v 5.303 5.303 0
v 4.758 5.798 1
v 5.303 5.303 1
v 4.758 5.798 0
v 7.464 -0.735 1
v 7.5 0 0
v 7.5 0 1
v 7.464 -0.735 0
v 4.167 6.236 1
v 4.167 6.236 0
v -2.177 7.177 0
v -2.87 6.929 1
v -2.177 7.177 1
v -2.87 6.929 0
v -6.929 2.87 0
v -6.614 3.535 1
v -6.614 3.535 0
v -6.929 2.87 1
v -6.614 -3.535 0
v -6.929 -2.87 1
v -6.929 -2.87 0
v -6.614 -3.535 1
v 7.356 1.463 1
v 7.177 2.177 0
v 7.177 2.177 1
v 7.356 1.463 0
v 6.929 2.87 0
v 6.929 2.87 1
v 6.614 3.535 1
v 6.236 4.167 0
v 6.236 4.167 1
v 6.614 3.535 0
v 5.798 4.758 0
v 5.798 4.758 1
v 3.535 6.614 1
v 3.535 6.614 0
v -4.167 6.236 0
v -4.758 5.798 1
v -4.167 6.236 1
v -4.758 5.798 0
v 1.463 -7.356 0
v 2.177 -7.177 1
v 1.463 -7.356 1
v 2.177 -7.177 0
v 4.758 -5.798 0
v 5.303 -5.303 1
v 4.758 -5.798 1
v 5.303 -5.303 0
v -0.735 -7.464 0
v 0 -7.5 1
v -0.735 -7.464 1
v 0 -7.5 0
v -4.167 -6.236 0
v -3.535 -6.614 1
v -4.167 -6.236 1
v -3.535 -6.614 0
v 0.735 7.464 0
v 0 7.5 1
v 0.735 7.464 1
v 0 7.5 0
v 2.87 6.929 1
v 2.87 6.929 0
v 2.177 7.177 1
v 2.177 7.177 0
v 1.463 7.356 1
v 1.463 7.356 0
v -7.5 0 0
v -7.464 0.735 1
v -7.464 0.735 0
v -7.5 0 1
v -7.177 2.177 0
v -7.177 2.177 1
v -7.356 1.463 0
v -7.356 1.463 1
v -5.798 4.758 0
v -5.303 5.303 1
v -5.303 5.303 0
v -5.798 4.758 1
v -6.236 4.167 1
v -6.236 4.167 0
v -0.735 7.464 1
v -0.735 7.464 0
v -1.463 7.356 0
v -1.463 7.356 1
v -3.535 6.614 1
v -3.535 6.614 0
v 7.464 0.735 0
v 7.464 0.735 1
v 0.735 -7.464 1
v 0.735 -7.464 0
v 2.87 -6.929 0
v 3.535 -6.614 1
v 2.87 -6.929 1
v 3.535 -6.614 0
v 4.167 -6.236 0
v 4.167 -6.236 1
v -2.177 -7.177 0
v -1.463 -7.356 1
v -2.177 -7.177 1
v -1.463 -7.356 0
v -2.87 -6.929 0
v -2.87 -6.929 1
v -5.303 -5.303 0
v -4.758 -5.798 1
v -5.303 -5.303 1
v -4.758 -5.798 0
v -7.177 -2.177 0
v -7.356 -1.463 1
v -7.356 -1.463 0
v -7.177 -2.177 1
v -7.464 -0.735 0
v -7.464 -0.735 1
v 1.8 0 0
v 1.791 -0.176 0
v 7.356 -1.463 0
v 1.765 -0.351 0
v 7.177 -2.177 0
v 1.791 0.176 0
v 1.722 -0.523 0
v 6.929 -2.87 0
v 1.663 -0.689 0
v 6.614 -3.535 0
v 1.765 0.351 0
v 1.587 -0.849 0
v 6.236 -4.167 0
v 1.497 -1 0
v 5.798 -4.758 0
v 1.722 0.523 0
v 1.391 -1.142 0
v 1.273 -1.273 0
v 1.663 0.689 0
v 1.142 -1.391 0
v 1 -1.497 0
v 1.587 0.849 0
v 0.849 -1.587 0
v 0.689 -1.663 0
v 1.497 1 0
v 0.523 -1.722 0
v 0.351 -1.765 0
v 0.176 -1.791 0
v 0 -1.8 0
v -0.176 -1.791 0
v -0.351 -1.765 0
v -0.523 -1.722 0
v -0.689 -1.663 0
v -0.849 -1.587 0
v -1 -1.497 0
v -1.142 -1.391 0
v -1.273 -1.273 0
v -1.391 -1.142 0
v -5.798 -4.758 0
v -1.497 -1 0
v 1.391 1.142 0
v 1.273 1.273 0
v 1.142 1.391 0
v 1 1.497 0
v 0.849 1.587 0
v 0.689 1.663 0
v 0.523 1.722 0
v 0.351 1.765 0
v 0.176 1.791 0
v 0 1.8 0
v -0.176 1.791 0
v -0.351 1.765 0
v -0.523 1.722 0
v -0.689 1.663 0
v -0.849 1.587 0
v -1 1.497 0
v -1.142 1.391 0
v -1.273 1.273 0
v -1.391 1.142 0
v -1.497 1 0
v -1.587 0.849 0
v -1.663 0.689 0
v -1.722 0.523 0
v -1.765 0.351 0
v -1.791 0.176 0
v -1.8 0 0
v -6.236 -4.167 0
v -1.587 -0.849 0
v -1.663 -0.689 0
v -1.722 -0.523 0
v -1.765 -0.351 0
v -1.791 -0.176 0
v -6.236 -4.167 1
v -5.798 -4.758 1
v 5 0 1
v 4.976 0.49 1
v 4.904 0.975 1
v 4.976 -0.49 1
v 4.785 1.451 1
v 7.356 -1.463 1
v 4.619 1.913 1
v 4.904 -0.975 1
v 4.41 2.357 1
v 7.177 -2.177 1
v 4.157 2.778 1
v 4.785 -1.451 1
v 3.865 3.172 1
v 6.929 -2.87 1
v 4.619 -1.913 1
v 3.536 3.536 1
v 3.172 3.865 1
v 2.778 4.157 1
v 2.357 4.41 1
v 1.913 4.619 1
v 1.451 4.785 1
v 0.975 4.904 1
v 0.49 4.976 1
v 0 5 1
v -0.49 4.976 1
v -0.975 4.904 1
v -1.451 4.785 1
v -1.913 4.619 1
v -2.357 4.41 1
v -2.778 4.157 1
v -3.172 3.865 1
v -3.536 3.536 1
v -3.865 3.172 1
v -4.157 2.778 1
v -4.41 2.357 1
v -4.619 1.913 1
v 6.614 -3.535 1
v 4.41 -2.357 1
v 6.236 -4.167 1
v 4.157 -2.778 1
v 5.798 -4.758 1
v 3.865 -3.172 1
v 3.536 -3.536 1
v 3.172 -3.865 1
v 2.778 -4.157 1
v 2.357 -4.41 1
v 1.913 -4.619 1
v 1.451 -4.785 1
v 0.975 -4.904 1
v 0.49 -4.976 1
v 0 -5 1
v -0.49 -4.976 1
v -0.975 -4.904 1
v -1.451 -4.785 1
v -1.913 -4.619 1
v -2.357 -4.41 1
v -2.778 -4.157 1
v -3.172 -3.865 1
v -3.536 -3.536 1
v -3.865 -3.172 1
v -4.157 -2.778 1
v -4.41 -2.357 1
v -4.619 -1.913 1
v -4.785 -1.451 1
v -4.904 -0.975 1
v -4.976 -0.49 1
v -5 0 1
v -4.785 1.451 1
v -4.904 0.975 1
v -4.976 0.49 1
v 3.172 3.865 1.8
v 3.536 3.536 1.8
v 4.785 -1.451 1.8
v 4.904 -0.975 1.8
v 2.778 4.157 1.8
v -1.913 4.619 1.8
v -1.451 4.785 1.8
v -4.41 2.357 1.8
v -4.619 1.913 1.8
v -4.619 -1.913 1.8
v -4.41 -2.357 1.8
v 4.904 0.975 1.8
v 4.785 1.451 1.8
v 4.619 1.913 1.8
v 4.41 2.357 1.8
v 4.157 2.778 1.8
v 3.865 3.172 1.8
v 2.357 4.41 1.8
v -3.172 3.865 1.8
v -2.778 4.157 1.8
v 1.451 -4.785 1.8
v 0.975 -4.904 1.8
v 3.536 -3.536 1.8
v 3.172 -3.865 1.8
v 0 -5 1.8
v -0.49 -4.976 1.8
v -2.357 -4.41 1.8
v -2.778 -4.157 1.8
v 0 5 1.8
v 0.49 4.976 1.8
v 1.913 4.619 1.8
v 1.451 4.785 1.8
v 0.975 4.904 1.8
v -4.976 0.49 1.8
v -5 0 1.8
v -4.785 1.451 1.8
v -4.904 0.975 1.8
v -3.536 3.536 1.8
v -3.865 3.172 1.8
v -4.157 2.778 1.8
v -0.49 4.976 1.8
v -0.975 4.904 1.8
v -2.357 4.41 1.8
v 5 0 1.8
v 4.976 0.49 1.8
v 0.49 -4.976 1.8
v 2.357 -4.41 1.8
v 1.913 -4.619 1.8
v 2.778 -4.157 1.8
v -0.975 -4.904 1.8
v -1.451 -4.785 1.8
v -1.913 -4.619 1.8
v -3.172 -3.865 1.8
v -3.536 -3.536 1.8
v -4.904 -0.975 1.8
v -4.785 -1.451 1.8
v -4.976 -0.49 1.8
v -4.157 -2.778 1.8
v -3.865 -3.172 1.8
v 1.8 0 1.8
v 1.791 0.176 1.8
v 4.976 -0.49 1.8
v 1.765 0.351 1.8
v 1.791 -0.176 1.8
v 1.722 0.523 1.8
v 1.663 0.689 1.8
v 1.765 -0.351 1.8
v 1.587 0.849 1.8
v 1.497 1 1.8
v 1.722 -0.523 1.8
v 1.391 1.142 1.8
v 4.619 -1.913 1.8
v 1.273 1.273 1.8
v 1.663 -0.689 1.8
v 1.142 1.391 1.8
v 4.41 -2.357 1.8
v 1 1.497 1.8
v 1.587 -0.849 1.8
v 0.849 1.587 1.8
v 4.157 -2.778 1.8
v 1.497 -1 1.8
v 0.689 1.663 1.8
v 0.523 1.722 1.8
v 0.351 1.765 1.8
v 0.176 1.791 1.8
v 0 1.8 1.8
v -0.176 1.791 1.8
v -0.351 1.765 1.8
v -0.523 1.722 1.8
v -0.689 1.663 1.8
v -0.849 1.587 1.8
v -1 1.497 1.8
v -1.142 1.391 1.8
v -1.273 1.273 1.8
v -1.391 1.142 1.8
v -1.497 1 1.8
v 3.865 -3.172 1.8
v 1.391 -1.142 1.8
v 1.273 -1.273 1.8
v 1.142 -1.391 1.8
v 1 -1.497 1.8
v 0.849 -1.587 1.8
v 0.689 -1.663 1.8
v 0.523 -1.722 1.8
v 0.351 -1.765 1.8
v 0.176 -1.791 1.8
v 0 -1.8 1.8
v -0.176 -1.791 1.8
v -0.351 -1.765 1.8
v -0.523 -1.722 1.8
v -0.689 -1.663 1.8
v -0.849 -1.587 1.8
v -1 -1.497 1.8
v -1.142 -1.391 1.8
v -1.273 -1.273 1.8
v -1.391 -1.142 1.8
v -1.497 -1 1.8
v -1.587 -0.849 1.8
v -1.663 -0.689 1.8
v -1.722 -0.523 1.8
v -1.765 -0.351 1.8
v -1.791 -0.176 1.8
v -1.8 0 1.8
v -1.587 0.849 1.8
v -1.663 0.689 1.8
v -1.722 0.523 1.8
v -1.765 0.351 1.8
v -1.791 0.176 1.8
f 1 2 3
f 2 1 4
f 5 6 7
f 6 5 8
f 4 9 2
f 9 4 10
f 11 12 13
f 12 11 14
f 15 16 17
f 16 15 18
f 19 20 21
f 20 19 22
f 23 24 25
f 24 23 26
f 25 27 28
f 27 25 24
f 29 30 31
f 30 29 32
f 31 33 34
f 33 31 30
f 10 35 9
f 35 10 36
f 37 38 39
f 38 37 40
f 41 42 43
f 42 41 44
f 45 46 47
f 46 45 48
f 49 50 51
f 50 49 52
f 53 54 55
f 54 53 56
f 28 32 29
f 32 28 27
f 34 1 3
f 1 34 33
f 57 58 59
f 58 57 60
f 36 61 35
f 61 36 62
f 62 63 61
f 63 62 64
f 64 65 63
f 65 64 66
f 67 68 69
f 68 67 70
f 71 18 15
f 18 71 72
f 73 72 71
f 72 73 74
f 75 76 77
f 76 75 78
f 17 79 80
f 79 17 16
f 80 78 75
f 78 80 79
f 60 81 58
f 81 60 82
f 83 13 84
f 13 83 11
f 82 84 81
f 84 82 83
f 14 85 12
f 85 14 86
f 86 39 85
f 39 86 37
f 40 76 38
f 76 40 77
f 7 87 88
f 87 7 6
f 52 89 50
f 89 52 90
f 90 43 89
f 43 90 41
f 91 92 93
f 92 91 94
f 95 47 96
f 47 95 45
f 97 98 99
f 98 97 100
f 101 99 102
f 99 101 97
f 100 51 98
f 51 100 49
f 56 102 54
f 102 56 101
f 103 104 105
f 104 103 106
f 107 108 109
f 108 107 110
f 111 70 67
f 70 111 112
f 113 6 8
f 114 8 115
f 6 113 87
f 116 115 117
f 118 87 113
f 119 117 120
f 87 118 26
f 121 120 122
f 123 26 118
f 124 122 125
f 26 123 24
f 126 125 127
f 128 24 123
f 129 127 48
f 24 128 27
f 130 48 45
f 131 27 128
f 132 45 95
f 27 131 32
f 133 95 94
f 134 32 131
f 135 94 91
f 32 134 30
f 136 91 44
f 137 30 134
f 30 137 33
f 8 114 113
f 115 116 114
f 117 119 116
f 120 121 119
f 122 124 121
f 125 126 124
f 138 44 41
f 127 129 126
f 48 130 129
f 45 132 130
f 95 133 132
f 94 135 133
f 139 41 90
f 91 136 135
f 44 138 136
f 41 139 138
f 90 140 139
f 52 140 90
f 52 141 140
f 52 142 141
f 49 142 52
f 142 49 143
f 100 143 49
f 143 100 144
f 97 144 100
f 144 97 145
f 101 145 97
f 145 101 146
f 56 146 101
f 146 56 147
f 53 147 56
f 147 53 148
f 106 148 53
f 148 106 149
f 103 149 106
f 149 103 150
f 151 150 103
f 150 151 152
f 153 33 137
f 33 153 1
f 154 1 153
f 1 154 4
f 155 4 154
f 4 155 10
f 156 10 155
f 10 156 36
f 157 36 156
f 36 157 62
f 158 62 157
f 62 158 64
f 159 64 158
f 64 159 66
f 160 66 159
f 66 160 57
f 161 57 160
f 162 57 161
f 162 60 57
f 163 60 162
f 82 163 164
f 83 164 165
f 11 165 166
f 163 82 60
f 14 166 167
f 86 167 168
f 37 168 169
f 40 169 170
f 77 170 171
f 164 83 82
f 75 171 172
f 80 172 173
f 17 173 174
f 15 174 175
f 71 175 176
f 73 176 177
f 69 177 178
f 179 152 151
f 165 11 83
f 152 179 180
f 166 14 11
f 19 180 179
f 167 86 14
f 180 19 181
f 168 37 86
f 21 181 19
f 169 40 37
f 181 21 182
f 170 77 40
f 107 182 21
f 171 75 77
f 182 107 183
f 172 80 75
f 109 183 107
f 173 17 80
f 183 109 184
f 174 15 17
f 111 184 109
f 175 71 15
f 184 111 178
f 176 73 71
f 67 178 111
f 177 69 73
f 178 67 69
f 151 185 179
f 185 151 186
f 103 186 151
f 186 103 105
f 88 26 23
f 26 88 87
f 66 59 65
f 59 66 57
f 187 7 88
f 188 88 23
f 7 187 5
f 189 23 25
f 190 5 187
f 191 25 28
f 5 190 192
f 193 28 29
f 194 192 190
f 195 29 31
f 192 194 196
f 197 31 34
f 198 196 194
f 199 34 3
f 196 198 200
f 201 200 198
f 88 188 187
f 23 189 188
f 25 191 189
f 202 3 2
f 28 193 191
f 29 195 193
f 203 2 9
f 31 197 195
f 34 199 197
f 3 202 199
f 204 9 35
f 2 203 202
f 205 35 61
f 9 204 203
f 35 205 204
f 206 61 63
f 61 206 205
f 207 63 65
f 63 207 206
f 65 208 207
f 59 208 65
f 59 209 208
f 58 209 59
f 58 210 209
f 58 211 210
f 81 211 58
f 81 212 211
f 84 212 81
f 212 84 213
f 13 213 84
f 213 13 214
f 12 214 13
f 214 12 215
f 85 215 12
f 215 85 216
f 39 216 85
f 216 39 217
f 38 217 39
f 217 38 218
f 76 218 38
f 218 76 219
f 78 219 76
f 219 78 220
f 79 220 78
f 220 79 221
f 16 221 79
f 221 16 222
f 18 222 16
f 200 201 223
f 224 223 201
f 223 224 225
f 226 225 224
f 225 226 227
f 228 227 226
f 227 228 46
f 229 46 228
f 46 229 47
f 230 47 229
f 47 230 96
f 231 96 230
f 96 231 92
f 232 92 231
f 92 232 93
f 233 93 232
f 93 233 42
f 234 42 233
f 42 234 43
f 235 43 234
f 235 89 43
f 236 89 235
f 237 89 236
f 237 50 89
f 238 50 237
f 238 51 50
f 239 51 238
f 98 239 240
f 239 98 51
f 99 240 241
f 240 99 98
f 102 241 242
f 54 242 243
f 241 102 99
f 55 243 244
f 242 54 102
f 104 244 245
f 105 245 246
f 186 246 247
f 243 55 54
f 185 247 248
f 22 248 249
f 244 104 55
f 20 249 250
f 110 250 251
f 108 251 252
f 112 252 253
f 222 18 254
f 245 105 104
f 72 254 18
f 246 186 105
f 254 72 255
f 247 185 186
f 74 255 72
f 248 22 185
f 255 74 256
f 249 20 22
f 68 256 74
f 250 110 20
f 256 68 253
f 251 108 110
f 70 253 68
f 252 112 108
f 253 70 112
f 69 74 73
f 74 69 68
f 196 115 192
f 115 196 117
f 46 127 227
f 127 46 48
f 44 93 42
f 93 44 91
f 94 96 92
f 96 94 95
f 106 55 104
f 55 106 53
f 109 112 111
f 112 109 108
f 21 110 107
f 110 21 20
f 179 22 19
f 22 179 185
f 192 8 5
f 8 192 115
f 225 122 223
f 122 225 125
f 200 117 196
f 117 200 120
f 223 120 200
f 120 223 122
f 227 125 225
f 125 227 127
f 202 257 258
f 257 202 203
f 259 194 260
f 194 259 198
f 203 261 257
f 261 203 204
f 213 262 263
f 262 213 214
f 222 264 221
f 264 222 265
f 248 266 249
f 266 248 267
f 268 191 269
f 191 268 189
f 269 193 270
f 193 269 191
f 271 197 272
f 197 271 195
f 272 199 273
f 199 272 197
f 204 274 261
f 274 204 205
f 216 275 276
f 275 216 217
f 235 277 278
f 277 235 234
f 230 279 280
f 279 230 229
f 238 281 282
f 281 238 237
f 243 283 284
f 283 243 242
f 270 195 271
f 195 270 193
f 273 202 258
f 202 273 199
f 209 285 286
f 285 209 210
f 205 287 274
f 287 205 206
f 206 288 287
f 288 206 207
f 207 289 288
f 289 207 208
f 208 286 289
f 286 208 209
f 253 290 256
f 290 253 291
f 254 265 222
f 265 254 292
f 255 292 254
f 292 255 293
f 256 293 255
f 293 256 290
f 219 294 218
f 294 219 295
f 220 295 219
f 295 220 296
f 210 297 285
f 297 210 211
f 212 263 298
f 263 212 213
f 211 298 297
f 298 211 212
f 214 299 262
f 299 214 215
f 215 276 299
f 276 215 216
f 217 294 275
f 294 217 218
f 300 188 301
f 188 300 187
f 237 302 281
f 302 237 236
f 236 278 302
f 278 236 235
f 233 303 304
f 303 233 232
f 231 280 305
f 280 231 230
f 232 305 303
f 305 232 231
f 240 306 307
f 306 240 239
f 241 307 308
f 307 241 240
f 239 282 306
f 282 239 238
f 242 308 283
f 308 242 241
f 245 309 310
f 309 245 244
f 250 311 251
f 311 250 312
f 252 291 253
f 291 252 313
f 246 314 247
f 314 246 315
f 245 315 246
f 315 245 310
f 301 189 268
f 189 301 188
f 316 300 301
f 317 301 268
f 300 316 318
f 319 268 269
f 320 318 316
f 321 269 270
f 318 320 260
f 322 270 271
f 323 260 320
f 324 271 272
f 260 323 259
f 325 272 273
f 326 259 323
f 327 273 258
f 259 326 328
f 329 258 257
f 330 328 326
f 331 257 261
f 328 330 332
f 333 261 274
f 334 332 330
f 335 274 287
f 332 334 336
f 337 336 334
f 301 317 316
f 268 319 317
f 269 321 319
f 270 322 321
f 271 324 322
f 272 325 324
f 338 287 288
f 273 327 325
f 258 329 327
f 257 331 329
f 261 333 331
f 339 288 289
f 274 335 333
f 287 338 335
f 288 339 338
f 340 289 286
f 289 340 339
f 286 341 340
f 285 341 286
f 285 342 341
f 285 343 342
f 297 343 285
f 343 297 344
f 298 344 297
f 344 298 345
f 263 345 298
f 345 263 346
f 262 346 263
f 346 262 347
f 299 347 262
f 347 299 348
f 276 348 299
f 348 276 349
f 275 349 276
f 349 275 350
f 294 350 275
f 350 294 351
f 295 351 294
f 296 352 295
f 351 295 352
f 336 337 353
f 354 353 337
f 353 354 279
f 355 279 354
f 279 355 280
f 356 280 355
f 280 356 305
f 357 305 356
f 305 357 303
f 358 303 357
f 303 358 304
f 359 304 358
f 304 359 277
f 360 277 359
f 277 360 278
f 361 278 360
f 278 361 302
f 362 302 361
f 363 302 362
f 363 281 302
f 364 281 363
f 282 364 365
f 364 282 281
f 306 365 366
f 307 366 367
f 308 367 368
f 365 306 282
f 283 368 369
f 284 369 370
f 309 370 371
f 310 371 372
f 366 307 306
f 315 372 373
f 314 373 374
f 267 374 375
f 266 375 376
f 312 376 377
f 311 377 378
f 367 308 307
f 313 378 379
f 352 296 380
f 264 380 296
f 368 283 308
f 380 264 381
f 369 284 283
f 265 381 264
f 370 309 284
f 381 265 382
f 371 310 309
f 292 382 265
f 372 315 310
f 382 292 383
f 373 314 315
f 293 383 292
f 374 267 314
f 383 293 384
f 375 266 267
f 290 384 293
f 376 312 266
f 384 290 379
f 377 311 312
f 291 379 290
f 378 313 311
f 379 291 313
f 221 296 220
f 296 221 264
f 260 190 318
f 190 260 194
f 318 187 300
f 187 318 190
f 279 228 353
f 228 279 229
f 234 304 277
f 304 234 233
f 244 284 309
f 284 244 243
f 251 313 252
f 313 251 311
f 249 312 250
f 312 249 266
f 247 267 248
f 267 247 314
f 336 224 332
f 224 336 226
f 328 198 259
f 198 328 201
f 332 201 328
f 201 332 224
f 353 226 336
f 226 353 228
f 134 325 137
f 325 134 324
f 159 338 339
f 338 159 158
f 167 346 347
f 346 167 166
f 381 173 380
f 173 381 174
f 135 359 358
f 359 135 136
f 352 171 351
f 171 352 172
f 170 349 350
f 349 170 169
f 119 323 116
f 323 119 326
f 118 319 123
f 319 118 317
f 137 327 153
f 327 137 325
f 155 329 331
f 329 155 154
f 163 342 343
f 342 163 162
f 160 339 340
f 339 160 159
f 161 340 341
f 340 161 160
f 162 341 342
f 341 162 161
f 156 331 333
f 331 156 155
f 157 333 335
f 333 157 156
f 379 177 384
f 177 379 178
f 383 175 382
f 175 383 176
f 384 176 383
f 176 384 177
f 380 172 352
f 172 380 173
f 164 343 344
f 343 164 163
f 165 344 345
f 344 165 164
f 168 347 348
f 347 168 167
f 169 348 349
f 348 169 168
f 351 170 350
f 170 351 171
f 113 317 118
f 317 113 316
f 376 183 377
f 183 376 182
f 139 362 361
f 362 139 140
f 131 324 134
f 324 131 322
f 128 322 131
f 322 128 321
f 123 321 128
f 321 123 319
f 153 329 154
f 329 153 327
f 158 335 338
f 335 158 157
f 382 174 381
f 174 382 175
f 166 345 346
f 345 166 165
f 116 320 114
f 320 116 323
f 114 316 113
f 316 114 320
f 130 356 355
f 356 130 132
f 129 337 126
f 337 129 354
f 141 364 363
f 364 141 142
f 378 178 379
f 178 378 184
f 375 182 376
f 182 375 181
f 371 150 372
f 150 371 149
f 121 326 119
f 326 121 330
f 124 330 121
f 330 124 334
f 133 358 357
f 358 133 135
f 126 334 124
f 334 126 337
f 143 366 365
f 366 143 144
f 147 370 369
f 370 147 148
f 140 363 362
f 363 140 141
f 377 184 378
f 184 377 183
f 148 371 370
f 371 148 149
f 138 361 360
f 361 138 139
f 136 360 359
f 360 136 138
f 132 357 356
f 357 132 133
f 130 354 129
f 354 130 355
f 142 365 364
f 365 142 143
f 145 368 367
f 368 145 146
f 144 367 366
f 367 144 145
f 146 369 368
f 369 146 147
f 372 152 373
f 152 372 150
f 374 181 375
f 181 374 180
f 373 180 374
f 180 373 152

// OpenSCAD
$fn = 64;

difference() {
    union() {
        cylinder(d = 15, h = 1);
        cylinder(d = 10, h = 1.8);
    }
    cylinder(d = 3.6, h = 2);
}
